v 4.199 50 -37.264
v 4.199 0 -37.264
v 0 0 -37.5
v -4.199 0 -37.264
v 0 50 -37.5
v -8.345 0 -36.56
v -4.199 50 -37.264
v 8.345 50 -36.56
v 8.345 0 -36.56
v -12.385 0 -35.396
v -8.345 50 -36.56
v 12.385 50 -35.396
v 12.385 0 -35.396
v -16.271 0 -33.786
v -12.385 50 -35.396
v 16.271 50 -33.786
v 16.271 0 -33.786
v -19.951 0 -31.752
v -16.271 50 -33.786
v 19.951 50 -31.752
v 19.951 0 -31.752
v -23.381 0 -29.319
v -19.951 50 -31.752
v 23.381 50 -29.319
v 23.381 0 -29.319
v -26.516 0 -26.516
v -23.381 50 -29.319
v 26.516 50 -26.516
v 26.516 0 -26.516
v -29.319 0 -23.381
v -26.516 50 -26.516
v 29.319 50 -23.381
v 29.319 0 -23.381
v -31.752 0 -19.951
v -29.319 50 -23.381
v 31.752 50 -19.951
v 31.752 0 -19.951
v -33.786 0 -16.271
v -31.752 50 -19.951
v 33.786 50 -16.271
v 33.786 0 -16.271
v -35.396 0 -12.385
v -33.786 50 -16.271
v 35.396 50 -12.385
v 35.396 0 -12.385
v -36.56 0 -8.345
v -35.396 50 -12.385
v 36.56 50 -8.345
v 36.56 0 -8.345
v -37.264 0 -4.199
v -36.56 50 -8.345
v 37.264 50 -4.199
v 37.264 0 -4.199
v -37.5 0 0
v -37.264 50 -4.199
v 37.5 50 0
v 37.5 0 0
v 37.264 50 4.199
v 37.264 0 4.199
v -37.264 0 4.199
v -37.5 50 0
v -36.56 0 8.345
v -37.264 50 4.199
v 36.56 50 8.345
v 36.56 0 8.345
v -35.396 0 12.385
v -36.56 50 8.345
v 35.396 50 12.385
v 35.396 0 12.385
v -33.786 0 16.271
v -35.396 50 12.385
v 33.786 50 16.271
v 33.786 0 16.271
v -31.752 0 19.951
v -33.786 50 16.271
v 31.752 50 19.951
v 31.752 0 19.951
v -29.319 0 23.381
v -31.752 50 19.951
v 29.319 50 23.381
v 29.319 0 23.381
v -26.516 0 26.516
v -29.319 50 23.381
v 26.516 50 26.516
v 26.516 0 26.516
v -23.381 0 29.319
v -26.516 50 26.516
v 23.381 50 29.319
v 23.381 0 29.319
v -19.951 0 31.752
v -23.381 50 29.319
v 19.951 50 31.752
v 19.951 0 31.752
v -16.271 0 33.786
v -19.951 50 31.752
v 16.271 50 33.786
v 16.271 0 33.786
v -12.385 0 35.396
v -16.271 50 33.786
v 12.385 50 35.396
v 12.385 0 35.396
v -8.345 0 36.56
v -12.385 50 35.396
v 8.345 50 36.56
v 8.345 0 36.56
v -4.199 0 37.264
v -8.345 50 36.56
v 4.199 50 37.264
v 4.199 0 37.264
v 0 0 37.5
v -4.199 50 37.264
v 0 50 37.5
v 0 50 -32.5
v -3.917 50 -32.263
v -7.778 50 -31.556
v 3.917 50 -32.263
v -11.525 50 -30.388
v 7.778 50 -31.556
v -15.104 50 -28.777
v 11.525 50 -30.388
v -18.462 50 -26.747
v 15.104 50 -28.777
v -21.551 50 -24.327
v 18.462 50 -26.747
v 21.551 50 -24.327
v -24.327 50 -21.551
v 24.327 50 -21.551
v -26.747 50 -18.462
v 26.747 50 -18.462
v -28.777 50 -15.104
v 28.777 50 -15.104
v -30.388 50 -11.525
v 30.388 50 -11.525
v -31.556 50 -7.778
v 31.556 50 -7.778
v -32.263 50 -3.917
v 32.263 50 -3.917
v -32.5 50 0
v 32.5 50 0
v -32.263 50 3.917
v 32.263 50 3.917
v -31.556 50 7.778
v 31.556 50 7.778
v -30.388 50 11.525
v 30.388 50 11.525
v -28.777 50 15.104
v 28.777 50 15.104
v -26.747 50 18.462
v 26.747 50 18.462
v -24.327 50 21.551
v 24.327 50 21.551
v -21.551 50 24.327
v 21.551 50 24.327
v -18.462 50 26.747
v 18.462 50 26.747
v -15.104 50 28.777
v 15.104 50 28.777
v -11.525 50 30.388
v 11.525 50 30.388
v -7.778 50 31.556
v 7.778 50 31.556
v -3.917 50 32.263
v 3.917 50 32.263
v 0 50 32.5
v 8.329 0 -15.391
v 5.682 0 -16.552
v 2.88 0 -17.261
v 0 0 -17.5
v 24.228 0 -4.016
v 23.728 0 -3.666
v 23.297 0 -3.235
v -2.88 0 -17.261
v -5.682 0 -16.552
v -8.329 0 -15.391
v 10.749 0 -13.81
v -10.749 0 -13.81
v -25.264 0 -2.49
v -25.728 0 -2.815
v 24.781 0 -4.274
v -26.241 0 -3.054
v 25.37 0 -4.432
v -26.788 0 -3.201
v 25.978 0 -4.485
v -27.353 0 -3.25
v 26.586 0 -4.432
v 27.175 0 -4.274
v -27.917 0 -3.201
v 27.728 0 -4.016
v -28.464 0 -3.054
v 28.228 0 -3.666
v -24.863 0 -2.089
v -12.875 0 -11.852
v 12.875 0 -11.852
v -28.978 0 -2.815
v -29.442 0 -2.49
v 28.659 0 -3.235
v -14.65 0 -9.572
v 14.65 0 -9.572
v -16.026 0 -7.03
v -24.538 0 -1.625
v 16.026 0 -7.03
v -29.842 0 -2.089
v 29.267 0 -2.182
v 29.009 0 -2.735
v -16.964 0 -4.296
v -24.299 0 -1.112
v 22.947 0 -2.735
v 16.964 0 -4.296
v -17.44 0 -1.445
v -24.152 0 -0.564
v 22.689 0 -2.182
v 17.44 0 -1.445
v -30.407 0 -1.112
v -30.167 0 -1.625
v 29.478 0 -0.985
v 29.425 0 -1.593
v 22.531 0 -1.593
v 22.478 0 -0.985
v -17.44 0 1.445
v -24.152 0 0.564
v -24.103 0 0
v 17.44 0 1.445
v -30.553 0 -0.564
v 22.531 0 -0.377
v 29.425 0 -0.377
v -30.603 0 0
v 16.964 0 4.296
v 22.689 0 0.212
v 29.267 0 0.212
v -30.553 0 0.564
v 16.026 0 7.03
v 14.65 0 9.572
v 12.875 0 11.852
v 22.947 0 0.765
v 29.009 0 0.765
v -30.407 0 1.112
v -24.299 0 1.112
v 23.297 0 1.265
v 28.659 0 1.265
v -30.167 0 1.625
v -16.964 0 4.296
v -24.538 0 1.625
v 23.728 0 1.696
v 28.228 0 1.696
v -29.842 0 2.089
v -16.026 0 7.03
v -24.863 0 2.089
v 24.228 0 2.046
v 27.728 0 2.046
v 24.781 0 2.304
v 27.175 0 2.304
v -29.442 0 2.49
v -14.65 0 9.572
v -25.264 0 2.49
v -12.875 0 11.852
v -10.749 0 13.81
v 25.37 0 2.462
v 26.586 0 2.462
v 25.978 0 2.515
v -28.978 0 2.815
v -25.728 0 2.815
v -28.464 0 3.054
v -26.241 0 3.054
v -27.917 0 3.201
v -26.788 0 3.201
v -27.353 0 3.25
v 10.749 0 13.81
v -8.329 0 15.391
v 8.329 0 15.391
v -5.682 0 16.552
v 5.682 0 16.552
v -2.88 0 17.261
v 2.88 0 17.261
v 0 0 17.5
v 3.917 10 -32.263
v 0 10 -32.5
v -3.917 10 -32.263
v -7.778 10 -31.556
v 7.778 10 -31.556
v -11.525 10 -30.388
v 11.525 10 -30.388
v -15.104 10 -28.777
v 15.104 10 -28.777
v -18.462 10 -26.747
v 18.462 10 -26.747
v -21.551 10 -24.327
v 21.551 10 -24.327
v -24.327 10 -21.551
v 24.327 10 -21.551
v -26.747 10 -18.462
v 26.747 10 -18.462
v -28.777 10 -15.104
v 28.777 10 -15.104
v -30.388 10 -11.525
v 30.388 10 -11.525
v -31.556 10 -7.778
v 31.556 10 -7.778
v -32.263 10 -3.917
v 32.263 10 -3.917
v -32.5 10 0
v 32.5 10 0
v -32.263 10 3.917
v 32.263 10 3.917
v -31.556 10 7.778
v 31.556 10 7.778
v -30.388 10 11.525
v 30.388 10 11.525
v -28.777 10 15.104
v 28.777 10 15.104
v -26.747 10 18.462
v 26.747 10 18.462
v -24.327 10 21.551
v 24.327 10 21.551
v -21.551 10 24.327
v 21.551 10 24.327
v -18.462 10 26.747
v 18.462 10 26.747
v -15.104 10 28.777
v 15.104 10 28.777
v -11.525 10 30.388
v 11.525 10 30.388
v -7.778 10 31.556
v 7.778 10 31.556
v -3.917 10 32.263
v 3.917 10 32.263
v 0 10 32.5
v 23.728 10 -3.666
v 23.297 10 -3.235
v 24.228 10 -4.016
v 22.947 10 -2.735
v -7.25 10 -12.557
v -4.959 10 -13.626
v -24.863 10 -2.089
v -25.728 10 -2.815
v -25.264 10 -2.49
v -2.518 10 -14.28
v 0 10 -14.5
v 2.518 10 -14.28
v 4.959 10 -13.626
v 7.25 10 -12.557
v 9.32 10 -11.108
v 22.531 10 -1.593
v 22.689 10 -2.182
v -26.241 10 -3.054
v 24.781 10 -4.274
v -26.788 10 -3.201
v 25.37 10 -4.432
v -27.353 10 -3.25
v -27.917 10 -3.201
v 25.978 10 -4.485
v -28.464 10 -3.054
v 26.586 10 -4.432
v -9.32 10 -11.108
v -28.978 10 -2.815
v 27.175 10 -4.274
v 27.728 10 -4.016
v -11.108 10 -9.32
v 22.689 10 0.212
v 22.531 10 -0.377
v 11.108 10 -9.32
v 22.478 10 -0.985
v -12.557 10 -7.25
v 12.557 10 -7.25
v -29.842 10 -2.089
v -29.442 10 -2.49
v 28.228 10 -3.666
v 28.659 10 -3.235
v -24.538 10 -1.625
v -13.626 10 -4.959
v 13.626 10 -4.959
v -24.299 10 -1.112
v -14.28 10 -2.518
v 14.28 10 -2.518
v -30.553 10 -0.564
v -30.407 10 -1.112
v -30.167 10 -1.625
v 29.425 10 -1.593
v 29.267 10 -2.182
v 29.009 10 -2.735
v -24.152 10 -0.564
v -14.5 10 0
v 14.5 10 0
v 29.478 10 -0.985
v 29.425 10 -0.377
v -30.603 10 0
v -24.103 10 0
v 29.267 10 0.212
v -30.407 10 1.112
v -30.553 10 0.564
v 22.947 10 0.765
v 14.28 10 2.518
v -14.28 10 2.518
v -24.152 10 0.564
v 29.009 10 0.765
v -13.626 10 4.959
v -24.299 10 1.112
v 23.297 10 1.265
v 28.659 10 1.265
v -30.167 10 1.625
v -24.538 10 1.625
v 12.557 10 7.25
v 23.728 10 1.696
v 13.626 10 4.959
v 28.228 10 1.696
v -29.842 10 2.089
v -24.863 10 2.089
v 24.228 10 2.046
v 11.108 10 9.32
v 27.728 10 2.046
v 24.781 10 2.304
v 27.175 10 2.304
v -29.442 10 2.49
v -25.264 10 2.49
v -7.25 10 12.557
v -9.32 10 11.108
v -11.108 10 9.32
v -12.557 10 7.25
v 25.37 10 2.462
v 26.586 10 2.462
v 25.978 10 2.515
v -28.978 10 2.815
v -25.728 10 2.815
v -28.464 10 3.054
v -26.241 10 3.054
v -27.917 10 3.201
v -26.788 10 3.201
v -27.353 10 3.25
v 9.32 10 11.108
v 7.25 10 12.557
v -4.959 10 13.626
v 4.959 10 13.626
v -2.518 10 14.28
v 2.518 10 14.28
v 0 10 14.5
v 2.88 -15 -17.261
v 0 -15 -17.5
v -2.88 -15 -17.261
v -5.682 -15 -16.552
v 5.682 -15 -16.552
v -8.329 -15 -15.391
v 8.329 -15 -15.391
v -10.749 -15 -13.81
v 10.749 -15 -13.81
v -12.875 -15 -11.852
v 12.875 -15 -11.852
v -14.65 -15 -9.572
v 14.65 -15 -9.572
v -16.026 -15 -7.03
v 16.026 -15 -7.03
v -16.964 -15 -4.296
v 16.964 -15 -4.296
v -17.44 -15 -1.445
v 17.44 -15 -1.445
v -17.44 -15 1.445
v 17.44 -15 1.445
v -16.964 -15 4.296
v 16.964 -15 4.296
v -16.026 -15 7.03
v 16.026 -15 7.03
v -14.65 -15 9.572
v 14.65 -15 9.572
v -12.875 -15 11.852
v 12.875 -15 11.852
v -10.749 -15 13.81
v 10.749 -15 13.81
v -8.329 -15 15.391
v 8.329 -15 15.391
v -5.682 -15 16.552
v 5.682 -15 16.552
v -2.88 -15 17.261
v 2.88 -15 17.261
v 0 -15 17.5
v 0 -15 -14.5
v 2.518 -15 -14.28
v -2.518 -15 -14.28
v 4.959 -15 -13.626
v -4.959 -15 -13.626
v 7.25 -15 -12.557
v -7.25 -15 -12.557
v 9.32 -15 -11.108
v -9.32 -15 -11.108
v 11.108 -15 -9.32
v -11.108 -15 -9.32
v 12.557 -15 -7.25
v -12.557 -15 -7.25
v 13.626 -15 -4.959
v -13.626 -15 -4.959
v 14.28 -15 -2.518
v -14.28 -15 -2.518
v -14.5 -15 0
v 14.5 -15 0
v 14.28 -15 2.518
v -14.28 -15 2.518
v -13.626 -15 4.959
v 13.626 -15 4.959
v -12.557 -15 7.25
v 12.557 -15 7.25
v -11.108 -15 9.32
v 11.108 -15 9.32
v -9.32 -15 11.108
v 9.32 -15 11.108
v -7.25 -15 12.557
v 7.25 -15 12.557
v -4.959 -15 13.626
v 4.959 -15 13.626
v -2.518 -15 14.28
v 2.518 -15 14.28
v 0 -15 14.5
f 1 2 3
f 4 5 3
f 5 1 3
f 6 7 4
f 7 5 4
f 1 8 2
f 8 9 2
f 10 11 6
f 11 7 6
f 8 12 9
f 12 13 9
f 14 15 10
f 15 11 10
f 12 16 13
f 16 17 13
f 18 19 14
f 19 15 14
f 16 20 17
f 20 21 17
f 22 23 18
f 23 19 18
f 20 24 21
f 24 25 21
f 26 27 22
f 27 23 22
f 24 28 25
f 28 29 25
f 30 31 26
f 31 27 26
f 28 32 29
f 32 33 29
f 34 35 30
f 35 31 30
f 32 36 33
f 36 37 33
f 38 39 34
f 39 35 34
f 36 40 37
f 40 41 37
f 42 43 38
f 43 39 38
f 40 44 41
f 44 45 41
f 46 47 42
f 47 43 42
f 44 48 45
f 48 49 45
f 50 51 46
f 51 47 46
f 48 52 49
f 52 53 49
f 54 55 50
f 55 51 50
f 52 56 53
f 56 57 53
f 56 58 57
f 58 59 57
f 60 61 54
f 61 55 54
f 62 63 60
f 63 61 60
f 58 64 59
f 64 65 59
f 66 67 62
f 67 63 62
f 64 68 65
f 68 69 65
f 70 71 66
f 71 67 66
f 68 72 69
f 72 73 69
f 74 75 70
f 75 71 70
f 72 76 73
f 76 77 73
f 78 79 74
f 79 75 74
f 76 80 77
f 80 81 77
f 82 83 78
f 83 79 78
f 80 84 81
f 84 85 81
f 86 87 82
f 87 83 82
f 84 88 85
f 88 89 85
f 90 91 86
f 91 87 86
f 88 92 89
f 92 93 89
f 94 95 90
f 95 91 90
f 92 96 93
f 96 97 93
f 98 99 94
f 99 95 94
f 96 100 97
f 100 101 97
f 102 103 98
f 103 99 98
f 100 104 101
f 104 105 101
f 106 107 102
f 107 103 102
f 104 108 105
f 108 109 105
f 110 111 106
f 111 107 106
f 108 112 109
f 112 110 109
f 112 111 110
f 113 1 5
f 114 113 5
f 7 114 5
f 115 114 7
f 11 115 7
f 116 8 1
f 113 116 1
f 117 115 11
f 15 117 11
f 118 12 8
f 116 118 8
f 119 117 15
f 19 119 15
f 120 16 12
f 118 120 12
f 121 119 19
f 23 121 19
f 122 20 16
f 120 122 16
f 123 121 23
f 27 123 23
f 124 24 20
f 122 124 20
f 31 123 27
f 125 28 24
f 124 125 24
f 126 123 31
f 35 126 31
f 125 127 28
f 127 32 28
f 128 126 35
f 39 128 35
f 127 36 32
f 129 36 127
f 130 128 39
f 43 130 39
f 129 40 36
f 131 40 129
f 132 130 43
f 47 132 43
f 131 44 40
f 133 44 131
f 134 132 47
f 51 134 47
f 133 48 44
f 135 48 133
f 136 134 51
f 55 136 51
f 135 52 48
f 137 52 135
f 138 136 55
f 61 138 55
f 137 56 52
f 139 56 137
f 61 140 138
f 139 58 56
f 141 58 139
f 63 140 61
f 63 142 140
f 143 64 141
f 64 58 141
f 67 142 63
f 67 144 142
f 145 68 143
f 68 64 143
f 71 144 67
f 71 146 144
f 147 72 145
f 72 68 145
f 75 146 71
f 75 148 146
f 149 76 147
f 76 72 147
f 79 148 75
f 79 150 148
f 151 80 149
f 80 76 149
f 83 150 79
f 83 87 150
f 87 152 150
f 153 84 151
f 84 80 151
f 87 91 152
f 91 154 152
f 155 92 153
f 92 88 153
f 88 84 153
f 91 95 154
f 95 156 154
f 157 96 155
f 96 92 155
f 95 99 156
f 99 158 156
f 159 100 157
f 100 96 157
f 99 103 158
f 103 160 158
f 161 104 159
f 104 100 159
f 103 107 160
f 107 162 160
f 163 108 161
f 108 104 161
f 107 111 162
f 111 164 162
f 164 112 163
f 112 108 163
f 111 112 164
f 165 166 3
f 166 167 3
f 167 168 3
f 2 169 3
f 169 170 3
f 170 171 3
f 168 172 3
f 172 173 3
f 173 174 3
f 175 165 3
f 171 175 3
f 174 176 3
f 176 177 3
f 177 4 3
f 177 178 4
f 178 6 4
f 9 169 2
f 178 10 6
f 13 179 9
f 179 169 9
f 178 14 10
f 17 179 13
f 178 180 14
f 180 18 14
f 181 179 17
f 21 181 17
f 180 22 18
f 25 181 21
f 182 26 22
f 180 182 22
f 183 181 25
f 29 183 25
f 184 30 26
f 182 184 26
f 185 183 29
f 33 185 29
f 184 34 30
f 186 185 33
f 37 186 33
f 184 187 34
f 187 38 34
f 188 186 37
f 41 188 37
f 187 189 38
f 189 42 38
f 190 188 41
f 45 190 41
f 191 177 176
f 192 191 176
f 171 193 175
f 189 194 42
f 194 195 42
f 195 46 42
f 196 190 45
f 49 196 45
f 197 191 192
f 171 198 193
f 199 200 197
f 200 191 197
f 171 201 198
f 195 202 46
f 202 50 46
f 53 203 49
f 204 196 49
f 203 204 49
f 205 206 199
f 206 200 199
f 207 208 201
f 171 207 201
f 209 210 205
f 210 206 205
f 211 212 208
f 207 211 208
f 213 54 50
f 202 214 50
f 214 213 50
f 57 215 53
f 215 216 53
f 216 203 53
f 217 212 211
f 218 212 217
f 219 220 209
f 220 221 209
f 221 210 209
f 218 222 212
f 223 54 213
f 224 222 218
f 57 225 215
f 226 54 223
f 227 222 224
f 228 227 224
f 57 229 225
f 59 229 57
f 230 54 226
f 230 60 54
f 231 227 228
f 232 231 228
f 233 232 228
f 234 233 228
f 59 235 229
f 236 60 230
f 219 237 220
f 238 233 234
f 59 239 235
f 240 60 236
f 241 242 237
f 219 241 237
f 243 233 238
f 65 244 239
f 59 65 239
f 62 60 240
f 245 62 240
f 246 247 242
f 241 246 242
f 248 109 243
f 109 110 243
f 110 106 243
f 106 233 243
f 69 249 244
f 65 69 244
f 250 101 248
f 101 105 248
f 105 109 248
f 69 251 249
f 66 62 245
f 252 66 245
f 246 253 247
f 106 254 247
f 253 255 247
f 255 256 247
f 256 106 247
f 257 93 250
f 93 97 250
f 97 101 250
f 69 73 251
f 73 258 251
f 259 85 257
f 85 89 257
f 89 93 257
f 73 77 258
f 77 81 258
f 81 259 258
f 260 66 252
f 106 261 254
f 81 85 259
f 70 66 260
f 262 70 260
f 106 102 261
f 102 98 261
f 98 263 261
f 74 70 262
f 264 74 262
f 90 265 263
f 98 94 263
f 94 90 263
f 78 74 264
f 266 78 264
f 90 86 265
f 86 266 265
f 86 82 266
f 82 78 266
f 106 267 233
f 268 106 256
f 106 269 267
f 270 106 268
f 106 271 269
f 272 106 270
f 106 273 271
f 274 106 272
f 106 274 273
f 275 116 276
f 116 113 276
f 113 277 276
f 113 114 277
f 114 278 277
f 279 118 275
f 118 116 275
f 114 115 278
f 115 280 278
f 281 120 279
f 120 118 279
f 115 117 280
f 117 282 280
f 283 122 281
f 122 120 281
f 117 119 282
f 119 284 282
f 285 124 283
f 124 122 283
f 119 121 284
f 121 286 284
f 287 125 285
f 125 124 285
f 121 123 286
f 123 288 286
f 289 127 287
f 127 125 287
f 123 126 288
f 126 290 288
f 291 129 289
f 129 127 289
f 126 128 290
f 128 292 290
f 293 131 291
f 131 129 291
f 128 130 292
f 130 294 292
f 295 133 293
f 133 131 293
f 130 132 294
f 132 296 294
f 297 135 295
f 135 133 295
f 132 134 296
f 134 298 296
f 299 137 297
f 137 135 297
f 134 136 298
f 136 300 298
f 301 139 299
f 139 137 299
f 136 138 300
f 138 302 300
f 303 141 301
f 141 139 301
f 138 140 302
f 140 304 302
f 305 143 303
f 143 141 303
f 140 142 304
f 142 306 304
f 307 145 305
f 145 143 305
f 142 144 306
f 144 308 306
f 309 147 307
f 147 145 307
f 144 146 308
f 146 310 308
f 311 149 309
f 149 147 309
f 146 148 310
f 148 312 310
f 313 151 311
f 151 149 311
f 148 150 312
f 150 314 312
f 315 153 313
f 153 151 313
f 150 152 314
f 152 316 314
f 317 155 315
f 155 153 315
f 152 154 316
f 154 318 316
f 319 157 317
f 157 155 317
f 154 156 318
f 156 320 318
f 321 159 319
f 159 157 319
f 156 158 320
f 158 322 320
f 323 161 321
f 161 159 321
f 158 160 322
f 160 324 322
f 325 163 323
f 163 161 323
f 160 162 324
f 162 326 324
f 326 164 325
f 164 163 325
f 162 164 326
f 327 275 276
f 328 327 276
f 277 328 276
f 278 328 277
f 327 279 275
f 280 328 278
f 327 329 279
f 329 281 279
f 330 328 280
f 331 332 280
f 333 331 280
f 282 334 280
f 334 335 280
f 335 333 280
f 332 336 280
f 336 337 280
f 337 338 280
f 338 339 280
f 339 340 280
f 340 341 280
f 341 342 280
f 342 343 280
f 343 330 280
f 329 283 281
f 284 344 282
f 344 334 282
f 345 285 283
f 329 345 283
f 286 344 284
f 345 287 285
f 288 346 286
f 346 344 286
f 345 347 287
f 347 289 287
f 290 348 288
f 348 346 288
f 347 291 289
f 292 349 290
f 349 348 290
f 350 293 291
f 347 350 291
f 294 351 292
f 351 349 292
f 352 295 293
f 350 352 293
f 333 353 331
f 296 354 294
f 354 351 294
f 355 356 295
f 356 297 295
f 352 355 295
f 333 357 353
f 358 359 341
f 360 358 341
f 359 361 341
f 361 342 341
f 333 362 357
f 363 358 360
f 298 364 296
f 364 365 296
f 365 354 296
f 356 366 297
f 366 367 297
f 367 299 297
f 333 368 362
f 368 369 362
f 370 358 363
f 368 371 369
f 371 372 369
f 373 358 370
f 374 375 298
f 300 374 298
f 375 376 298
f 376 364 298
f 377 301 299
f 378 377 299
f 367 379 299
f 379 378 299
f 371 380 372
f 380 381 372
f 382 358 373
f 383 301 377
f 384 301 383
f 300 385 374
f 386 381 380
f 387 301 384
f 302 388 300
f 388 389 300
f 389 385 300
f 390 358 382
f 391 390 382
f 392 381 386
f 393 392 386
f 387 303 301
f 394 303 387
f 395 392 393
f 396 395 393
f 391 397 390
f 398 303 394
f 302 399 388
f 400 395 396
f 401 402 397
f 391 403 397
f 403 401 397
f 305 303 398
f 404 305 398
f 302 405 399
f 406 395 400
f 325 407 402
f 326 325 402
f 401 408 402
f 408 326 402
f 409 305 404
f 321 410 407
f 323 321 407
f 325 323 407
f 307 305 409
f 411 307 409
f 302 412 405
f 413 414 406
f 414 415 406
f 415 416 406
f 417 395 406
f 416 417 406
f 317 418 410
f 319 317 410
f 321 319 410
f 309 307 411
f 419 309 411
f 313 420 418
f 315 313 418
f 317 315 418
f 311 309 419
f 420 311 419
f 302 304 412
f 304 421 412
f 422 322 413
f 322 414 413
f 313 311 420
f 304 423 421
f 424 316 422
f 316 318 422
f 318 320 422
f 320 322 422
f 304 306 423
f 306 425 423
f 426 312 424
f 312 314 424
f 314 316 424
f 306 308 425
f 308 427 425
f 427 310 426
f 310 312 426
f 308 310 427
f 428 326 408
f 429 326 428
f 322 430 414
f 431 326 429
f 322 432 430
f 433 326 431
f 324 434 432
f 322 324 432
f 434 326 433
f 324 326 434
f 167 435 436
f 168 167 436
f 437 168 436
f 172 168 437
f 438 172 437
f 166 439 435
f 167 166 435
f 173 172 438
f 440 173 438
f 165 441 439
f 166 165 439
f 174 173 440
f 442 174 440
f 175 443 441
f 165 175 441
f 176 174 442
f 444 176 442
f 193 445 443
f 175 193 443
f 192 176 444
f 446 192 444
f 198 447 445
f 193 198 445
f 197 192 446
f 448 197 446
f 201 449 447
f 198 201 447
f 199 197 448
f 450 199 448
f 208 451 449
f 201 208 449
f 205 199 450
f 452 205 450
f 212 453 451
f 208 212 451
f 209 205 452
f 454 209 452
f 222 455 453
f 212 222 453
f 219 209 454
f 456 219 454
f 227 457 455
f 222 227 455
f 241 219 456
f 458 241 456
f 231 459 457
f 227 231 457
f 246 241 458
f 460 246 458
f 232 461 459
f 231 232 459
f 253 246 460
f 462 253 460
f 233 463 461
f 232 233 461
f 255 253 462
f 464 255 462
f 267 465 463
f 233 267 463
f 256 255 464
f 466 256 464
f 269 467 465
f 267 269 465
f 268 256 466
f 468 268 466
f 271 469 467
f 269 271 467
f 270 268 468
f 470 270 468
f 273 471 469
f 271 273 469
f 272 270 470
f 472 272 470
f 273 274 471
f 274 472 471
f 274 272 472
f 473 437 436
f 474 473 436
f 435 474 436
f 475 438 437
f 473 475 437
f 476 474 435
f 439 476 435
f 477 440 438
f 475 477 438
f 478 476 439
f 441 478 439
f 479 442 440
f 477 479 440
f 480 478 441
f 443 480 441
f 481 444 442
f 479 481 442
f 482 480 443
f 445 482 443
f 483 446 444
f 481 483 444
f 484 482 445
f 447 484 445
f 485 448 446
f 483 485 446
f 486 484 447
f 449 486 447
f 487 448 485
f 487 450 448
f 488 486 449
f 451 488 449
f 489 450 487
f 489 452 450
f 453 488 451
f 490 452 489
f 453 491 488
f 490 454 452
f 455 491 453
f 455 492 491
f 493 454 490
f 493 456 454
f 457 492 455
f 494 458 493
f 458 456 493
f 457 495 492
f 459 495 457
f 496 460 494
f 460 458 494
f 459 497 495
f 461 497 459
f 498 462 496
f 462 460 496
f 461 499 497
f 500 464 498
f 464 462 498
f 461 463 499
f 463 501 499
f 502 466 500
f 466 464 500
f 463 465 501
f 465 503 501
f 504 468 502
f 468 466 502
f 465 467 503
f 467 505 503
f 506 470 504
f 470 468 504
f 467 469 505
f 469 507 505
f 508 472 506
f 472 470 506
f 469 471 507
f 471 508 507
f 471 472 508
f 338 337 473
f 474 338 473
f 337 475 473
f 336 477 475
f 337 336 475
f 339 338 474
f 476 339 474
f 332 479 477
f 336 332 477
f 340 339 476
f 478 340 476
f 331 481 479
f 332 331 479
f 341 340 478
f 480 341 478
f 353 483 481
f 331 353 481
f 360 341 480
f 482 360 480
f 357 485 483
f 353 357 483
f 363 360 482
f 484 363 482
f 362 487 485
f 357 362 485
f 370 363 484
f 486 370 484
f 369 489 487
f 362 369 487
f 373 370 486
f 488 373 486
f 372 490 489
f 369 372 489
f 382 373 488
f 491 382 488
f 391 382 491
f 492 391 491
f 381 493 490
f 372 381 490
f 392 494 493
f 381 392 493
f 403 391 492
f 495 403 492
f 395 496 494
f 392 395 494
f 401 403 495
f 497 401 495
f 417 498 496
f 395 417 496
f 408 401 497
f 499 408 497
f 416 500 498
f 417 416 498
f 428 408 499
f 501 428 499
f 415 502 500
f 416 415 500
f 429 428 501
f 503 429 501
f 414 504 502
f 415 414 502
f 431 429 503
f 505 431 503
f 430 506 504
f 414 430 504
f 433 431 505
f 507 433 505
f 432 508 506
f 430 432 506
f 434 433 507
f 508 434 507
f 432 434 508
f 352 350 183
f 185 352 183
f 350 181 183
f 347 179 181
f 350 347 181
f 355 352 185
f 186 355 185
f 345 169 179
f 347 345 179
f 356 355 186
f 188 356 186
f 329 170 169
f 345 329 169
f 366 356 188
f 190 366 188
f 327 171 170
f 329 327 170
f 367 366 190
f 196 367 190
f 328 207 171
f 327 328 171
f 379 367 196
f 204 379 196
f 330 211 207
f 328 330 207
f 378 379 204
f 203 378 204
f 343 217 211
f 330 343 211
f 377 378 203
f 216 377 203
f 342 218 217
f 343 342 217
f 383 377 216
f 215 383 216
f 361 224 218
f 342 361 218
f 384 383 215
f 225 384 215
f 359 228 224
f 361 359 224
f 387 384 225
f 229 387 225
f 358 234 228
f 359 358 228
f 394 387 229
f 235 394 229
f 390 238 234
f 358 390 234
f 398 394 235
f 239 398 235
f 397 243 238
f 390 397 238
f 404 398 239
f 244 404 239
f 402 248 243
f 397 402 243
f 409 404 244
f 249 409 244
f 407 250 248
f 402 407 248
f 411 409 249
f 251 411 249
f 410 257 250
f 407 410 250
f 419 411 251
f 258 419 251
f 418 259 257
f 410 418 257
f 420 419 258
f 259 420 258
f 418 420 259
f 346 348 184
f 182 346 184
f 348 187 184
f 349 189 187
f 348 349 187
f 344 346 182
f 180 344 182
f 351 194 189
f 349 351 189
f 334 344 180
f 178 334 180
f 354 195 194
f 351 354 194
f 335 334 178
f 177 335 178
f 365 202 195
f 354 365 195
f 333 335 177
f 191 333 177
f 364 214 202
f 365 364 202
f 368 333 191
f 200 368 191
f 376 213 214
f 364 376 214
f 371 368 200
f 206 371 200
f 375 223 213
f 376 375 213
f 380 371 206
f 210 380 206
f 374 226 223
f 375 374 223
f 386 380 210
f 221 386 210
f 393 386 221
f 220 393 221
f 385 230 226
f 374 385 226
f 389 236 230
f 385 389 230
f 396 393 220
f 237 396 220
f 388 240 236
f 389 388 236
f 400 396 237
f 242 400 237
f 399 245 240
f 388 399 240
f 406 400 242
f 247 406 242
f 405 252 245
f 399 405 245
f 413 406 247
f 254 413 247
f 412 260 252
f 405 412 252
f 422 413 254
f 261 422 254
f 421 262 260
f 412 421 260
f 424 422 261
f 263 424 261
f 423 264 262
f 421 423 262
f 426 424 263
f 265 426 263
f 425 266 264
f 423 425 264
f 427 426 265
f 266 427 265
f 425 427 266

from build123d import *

# Parameters (mm, degrees)
SKETCH_1_R          = 37.5
EXTRUDE_1_DEPTH     = 50
SKETCH_2_R          = 32.5
CUT_EXTRUDE_1_DEPTH = 40
SKETCH_3_R          = 17.5
EXTRUDE_2_DEPTH     = 15
SKETCH_4_R          = 14.5
CUT_EXTRUDE_3_DEPTH = 84.889808678
SKETCH_6_R          = 3.5
CUT_EXTRUDE_4_DEPTH = 73.886898686
SKETCH_8_R          = 3.25
CUT_EXTRUDE_5_DEPTH = 73.886898686


with BuildPart() as part:
    # 草图1 → 凸台-拉伸1 (new body)
    with BuildSketch(Plane(origin=(0, 0, 0), x_dir=(1, 0, 0), z_dir=(0, 1, 0))):
        with Locations(Location((0, 0, 0), (0, 0, 270))):
            Circle(SKETCH_1_R)
    extrude(amount=EXTRUDE_1_DEPTH)

    # 草图2 → 切除-拉伸1 (cut)
    with BuildSketch(Plane(origin=(0, 50, 0), x_dir=(1, 0, 0), z_dir=(0, 1, 0))):
        with Locations(Location((0, 0, 0), (0, 0, 270))):
            Circle(SKETCH_2_R)
    extrude(amount=-CUT_EXTRUDE_1_DEPTH, mode=Mode.SUBTRACT)

    # 草图3 → 凸台-拉伸2 (add)
    with BuildSketch(Plane.XZ):
        with Locations(Location((0, 0, 0), (0, 0, 270))):
            Circle(SKETCH_3_R)
    extrude(amount=EXTRUDE_2_DEPTH)

    # 草图4 → 切除-拉伸3 (cut, through all)
    with BuildSketch(Plane(origin=(0, -15, 0), x_dir=(-1, 0, 0), z_dir=(0, -1, 0))):
        with Locations(Location((0, 0, 0), (0, 0, 90))):
            Circle(SKETCH_4_R)
    extrude(amount=-CUT_EXTRUDE_3_DEPTH, mode=Mode.SUBTRACT)

    # 草图6 → 切除-拉伸4 (cut, through all)
    with BuildSketch(Plane(origin=(0, 0, 0), x_dir=(-1, 0, 0), z_dir=(0, -1, 0))):
        with Locations(Location((-25.978212638, 0.984986916, 0), (0, 0, 90))):
            Circle(SKETCH_6_R)
    extrude(amount=-CUT_EXTRUDE_4_DEPTH, mode=Mode.SUBTRACT)

    # 草图8 → 切除-拉伸5 (cut, through all)
    with BuildSketch(Plane.XZ):
        with Locations(Location((-27.352744553, 0, 0), (0, 0, 270))):
            Circle(SKETCH_8_R)
    extrude(amount=-CUT_EXTRUDE_5_DEPTH, mode=Mode.SUBTRACT)


solid = part.part
